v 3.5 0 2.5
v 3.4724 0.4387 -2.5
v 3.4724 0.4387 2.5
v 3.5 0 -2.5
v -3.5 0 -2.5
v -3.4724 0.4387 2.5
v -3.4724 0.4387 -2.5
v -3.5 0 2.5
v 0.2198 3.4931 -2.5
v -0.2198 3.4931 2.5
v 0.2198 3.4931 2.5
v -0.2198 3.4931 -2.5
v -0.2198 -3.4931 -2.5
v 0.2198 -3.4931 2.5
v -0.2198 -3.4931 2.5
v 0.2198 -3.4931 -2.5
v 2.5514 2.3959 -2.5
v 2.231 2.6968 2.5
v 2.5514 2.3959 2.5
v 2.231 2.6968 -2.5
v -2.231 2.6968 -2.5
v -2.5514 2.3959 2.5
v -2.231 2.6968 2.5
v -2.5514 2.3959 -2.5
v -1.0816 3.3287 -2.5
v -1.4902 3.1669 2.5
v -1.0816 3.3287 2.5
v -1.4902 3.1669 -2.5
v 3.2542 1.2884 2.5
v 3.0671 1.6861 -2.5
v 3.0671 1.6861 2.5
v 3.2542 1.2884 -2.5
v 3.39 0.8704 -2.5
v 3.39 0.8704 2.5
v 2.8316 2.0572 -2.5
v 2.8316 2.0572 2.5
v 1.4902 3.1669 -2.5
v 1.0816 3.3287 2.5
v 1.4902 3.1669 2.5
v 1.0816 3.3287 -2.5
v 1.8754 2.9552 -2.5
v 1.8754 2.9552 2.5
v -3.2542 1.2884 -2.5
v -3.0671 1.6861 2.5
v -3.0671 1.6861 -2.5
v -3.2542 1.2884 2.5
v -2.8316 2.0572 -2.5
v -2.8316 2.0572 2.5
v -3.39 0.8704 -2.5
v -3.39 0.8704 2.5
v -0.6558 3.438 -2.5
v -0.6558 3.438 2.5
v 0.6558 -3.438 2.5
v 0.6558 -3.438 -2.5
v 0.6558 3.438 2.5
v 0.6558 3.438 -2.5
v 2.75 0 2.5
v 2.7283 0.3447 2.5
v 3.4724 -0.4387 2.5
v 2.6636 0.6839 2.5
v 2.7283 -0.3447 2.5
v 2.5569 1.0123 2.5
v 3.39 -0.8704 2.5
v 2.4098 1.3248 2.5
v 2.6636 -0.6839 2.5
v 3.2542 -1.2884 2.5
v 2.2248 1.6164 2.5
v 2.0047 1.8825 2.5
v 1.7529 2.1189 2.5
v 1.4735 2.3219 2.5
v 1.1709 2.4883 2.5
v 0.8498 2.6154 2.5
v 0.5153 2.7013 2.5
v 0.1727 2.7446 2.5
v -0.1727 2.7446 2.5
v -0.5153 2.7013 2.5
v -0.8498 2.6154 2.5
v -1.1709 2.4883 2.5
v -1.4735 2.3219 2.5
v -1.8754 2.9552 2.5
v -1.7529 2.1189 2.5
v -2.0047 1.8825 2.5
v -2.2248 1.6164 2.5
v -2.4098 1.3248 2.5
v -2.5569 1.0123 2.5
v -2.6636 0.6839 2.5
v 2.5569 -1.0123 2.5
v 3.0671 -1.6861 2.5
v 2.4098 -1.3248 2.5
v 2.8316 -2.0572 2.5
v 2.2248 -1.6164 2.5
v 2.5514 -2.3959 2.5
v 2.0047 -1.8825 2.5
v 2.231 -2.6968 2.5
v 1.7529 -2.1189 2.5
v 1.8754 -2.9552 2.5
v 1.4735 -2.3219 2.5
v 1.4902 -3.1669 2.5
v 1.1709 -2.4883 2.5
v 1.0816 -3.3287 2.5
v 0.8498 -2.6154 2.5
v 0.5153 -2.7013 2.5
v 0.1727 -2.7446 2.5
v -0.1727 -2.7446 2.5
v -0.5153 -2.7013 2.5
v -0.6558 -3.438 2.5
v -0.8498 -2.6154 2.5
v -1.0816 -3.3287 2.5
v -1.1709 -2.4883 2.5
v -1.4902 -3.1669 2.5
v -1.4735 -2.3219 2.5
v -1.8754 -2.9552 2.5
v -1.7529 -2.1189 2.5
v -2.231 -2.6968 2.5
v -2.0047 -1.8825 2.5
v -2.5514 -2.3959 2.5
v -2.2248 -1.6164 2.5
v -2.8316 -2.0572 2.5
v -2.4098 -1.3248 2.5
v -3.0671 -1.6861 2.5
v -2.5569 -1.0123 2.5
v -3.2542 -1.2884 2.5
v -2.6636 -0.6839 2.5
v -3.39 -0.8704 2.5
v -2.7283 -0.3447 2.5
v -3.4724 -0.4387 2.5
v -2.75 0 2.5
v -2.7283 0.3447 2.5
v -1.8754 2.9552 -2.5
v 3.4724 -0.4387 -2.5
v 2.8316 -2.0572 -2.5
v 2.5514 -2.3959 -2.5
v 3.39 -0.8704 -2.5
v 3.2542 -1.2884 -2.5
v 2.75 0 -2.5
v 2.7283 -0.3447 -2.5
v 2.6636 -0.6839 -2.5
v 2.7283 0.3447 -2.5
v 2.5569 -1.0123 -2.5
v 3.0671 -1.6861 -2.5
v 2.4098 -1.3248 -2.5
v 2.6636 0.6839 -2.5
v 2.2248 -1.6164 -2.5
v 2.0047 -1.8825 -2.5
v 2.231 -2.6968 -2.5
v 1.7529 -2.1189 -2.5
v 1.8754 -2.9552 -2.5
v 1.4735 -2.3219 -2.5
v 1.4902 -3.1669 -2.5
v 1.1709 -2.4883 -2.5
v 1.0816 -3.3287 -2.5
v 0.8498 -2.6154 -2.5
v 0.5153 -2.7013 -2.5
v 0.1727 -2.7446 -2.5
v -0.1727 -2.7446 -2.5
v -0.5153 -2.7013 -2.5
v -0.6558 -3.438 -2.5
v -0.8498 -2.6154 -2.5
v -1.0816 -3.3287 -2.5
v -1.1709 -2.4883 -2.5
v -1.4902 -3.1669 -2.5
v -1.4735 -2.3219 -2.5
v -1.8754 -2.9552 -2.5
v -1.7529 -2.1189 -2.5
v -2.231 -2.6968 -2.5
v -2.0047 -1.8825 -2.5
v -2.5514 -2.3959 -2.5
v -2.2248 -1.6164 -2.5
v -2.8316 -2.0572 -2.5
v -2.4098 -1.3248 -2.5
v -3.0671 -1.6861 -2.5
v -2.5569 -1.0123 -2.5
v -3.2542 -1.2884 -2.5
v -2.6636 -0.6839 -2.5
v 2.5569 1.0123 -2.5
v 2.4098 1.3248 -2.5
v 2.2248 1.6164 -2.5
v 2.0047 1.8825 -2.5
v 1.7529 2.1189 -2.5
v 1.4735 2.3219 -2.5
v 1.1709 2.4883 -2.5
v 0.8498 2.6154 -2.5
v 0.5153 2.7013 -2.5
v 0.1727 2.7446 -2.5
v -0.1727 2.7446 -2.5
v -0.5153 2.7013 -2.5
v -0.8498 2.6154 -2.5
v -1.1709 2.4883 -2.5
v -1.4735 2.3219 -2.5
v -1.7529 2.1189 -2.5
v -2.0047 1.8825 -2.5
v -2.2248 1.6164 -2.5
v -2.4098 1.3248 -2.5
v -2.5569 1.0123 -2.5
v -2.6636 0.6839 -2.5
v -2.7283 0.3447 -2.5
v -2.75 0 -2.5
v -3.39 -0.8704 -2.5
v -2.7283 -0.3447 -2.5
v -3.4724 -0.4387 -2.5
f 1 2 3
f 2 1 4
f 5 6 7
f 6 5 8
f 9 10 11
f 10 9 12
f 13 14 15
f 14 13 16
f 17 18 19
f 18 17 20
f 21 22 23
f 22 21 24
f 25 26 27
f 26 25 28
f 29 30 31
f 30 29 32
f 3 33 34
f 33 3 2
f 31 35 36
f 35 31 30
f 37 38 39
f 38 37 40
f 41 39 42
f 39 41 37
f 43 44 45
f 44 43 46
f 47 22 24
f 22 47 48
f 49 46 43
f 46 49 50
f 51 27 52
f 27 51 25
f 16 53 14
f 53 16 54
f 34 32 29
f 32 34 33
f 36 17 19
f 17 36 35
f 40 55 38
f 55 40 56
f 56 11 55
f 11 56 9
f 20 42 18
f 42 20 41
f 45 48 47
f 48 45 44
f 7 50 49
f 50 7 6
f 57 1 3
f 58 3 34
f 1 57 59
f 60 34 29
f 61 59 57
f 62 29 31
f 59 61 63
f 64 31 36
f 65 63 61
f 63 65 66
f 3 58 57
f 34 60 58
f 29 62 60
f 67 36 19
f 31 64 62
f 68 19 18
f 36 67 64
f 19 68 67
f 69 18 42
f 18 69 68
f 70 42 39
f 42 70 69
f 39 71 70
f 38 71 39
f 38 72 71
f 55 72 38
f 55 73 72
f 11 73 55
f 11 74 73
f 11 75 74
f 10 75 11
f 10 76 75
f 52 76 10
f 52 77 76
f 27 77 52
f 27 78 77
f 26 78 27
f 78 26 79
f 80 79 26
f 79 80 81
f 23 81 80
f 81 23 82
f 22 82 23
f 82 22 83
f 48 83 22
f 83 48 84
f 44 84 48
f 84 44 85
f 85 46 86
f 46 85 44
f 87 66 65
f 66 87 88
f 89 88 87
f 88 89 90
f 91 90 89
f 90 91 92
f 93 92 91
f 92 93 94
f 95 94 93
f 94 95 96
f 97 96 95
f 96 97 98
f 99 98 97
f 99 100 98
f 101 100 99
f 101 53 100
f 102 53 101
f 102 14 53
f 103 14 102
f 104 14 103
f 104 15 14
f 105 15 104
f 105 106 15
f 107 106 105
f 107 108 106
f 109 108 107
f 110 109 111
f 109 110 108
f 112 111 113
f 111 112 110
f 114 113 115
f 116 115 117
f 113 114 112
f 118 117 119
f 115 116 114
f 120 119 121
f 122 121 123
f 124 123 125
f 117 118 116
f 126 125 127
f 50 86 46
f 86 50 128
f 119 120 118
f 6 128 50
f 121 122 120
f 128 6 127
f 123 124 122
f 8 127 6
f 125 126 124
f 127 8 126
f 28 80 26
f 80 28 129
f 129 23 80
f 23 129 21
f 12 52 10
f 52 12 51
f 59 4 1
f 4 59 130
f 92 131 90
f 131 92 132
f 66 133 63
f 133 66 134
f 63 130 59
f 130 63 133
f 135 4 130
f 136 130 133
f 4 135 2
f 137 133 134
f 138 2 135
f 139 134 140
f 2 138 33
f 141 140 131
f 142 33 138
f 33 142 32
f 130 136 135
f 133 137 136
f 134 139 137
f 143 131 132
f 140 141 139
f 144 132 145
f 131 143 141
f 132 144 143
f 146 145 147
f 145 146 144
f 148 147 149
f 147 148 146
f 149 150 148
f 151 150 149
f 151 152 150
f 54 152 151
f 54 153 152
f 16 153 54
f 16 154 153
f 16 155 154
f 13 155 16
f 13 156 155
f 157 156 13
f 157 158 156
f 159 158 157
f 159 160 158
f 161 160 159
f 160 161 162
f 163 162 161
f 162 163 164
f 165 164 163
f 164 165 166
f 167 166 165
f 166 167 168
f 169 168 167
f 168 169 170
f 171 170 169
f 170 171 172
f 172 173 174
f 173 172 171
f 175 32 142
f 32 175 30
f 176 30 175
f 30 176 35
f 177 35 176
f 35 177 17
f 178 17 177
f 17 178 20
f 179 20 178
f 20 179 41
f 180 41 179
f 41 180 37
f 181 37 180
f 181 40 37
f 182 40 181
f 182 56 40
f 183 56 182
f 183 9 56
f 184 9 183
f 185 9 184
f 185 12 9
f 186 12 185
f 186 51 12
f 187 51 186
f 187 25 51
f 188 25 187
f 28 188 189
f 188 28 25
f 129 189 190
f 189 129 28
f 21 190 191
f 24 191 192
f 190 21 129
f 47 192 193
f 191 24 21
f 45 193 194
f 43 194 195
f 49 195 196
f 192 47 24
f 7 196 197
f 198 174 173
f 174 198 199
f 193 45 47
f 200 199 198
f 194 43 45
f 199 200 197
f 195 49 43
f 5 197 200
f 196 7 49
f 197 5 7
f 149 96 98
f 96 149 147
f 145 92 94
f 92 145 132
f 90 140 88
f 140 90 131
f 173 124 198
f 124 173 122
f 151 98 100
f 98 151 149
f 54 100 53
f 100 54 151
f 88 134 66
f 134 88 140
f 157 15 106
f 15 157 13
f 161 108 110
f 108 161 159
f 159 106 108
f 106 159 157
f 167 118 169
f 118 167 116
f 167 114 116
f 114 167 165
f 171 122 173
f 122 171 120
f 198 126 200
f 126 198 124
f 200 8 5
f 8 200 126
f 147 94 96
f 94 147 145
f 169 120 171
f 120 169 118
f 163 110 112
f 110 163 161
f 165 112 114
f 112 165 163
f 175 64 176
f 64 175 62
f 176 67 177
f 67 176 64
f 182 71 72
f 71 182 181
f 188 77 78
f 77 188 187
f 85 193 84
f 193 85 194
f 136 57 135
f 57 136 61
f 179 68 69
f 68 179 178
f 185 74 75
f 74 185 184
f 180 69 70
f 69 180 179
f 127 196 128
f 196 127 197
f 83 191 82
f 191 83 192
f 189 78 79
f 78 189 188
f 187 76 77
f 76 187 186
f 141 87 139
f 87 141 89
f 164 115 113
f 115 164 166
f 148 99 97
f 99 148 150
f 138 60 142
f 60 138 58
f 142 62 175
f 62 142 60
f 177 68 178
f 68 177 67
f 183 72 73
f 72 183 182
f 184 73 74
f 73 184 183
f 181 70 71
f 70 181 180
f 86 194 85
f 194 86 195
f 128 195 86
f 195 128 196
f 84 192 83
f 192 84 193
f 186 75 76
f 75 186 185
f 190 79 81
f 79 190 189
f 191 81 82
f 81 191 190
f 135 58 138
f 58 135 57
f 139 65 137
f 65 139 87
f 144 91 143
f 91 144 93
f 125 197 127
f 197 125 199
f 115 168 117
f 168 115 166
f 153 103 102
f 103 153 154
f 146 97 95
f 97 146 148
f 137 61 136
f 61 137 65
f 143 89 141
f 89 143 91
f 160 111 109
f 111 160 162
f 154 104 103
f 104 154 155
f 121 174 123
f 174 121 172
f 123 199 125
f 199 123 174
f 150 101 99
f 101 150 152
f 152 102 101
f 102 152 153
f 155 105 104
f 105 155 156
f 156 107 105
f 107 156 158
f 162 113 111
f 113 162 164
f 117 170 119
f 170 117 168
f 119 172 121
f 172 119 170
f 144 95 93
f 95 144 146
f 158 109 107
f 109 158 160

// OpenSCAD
$fn = 50;


difference() {
	union() {
		translate(v = [0, 0, -2.5000000000]) {
			cylinder(h = 5, r = 3.5000000000);
		}
	}
	union() {
		translate(v = [0, 0, -100.0000000000]) {
			cylinder(h = 200, r = 2.7500000000);
		}
	}
}
